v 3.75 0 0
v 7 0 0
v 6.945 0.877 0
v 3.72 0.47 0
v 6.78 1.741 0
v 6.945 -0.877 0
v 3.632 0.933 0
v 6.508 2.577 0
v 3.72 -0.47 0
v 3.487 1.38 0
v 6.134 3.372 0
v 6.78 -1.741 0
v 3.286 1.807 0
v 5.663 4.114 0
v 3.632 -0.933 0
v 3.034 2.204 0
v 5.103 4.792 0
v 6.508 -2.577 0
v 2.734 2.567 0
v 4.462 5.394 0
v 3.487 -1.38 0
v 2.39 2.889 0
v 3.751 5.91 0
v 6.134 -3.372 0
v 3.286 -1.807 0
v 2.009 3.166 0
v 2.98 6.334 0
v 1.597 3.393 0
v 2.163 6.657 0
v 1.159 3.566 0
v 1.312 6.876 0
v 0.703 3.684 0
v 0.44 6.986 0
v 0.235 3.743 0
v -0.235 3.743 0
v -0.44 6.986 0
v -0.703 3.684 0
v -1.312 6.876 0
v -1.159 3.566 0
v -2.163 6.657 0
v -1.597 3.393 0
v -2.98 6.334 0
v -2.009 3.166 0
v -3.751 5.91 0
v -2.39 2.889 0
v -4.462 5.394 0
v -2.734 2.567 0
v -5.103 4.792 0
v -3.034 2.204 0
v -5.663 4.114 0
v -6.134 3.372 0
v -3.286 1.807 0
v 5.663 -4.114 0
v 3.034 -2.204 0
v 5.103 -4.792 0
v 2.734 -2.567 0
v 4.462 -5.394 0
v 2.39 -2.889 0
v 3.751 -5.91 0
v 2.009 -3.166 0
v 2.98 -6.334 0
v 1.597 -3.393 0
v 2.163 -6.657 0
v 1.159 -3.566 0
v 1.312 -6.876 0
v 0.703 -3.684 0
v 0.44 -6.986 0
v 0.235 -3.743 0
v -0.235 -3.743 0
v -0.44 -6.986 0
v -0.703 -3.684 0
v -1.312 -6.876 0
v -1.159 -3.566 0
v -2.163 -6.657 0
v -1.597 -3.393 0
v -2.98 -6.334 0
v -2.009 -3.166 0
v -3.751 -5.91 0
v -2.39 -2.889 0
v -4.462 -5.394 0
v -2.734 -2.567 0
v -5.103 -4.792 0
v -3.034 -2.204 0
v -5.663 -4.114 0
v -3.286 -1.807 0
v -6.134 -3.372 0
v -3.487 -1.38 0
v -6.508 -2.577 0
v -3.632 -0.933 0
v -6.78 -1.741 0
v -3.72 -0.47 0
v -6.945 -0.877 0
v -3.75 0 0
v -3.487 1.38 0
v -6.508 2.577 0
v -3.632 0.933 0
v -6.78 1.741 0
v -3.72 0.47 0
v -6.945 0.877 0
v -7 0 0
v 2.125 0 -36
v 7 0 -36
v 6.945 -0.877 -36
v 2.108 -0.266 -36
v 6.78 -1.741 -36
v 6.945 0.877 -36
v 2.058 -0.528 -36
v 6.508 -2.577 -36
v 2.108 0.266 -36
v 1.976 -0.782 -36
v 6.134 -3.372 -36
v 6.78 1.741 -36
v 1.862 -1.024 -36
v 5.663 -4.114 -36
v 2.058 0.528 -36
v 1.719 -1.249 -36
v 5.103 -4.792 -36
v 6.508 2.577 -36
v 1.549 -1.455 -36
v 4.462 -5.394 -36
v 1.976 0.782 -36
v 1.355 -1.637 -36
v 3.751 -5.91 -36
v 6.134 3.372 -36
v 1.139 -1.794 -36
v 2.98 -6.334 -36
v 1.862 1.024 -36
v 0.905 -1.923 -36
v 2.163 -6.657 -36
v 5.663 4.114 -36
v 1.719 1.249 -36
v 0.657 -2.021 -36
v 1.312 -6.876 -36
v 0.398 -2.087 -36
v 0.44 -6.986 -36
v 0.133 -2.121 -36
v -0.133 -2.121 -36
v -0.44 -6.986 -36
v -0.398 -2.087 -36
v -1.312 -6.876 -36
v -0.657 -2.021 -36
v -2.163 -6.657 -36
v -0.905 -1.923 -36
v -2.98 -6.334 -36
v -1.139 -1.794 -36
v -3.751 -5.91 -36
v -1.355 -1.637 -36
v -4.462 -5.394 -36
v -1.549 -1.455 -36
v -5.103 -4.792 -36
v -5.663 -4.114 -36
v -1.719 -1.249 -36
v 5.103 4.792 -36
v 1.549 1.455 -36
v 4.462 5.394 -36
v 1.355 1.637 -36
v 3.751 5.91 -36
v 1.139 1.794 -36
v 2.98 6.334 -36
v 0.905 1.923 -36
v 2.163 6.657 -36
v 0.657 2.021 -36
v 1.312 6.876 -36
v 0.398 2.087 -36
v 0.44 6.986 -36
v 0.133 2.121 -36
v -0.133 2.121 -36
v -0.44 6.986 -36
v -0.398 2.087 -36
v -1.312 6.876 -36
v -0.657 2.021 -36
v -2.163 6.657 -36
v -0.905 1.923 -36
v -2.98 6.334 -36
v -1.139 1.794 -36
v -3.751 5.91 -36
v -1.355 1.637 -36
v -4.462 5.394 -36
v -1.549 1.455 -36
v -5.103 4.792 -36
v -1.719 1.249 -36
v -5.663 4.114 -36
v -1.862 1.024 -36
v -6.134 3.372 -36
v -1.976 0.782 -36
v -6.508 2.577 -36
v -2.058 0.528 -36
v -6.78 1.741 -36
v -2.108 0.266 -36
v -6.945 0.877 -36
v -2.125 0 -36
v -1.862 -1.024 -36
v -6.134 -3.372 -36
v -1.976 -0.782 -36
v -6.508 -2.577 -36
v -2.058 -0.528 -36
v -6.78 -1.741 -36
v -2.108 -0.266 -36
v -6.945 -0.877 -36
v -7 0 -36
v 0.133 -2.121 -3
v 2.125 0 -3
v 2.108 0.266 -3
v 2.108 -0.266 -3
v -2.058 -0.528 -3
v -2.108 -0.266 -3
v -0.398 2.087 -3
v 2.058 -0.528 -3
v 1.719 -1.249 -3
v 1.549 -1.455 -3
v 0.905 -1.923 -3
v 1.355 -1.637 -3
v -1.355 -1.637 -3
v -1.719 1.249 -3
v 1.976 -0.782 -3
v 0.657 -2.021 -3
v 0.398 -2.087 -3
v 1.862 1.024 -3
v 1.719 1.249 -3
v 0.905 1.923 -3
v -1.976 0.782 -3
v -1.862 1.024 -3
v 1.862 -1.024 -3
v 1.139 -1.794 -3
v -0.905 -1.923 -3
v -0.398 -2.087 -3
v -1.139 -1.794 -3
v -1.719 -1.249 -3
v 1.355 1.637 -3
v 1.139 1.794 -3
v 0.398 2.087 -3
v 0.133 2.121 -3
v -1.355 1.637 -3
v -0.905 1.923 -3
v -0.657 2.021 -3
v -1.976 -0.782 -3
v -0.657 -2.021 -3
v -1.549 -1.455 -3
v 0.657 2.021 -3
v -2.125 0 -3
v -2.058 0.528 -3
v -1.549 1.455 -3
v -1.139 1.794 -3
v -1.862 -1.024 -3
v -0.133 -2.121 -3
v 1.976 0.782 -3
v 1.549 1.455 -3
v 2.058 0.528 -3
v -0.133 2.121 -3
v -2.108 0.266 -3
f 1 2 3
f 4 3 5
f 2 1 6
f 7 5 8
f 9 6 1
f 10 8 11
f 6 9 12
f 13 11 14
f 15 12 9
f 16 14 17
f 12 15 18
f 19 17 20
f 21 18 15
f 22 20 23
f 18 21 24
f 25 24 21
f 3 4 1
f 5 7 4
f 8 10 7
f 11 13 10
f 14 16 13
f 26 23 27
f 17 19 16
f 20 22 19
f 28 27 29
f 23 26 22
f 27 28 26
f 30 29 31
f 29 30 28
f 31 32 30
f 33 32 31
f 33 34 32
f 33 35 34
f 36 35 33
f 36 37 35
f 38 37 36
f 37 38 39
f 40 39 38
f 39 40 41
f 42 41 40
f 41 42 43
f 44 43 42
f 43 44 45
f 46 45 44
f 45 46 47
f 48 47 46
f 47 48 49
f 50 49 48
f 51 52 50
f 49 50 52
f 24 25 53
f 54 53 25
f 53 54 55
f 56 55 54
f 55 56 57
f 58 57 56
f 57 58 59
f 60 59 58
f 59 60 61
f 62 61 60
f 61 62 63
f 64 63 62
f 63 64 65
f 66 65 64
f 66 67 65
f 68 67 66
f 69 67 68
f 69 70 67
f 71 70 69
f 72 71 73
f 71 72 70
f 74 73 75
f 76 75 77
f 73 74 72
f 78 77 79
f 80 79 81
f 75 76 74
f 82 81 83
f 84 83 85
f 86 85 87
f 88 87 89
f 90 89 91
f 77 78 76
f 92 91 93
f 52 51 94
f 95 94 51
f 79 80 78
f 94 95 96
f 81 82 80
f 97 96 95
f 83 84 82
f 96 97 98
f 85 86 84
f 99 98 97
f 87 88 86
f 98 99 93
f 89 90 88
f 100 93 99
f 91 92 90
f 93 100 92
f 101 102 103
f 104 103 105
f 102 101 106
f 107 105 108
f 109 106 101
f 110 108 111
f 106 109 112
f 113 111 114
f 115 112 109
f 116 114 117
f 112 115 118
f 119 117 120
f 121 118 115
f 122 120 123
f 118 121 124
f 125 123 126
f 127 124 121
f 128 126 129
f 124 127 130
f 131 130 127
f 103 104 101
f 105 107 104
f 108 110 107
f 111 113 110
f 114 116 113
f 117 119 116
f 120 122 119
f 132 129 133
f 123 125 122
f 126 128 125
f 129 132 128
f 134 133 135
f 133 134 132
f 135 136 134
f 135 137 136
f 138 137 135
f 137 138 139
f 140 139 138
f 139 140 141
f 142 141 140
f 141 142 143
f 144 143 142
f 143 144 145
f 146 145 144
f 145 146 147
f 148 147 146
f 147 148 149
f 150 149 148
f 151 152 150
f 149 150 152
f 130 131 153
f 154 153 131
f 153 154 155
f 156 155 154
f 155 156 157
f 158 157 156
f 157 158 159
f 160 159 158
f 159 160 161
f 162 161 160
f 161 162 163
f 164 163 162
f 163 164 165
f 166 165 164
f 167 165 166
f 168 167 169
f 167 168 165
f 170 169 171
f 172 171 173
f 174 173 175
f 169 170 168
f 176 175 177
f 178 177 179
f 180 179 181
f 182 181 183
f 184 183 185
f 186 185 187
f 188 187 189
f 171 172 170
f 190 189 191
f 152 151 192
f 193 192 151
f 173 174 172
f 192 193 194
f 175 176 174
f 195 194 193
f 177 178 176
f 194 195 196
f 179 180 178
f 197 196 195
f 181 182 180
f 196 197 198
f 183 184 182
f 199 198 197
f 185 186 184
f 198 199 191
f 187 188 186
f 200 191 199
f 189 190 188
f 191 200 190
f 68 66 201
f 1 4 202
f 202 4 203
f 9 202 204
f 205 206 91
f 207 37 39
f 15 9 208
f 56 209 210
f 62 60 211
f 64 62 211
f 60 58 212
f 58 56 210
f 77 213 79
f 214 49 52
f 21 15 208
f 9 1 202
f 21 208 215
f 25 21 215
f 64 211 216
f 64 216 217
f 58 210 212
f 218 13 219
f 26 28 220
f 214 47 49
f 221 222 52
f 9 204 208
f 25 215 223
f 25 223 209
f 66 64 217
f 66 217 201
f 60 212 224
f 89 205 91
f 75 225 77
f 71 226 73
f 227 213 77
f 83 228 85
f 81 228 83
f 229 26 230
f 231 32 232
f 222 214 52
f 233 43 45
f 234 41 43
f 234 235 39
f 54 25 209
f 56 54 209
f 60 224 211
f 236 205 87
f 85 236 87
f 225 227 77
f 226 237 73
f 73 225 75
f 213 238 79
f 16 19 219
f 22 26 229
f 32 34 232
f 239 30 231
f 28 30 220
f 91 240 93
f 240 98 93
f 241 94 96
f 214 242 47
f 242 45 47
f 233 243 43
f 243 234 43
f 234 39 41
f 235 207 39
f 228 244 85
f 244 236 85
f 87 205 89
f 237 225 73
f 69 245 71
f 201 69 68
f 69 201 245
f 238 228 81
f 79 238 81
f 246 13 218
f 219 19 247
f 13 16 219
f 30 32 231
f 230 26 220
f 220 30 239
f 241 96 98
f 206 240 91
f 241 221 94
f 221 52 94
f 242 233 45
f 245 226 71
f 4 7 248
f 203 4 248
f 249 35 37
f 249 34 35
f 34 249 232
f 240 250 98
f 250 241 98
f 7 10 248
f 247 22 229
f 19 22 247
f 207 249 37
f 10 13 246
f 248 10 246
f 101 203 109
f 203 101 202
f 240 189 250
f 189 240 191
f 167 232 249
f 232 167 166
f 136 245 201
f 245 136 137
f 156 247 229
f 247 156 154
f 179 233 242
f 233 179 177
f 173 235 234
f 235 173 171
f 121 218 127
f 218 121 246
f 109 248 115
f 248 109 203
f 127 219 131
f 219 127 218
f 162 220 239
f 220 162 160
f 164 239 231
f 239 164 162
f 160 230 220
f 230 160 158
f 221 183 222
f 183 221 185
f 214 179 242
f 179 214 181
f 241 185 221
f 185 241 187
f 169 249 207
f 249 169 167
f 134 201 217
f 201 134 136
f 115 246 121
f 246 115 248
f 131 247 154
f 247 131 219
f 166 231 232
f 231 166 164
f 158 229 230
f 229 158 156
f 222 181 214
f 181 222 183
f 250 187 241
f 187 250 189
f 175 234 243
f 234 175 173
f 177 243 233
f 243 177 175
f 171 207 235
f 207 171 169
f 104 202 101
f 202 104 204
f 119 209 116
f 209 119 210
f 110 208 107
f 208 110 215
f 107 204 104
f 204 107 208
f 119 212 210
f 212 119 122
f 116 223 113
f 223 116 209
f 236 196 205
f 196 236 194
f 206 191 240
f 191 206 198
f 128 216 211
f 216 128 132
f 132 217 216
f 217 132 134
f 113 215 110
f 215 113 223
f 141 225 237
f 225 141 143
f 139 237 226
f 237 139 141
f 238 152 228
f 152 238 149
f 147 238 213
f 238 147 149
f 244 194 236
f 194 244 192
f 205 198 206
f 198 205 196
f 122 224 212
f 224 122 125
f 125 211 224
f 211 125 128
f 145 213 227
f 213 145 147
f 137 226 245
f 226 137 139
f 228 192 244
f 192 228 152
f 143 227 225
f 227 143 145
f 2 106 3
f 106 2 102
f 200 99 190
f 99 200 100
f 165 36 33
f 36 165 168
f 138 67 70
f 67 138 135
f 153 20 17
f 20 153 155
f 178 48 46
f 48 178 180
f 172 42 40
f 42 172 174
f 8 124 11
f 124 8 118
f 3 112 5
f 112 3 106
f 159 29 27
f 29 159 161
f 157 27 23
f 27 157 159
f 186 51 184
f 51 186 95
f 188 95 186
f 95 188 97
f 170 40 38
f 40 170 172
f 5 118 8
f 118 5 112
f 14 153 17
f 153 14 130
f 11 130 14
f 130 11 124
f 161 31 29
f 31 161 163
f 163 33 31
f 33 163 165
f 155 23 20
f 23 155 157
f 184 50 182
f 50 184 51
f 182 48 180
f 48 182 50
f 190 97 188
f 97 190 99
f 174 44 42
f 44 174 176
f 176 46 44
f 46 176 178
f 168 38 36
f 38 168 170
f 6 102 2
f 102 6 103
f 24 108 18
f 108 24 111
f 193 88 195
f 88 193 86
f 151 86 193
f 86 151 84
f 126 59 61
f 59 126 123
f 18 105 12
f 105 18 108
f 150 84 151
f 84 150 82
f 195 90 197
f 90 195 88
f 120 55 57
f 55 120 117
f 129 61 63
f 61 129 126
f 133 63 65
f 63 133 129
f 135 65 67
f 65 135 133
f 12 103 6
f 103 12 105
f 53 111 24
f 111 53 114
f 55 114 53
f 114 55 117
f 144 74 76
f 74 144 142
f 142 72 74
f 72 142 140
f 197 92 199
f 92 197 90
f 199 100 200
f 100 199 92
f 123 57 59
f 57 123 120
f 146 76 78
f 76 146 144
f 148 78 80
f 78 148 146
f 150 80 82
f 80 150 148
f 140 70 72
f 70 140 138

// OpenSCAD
$fn = 50;


difference() {
	union() {
		translate(v = [0, 0, -36.0000000000]) {
			cylinder(h = 36, r = 7.0000000000);
		}
	}
	union() {
		translate(v = [0, 0, 0]) {
			rotate(a = [0, 0, 0]) {
				difference() {
					union() {
						#translate(v = [0, 0, -36.0000000000]) {
							cylinder(h = 36, r = 2.0000000000);
						}
						#translate(v = [0, 0, -3]) {
							cylinder(h = 3, r = 7.0000000000, r1 = 2.1250000000, r2 = 3.7500000000);
						}
						#translate(v = [0, 0, -36.0000000000]) {
							cylinder(h = 36, r = 2.1250000000);
						}
						#translate(v = [0, 0, -36.0000000000]) {
							cylinder(h = 36, r = 2.0000000000);
						}
					}
					union();
				}
			}
		}
	}
}
